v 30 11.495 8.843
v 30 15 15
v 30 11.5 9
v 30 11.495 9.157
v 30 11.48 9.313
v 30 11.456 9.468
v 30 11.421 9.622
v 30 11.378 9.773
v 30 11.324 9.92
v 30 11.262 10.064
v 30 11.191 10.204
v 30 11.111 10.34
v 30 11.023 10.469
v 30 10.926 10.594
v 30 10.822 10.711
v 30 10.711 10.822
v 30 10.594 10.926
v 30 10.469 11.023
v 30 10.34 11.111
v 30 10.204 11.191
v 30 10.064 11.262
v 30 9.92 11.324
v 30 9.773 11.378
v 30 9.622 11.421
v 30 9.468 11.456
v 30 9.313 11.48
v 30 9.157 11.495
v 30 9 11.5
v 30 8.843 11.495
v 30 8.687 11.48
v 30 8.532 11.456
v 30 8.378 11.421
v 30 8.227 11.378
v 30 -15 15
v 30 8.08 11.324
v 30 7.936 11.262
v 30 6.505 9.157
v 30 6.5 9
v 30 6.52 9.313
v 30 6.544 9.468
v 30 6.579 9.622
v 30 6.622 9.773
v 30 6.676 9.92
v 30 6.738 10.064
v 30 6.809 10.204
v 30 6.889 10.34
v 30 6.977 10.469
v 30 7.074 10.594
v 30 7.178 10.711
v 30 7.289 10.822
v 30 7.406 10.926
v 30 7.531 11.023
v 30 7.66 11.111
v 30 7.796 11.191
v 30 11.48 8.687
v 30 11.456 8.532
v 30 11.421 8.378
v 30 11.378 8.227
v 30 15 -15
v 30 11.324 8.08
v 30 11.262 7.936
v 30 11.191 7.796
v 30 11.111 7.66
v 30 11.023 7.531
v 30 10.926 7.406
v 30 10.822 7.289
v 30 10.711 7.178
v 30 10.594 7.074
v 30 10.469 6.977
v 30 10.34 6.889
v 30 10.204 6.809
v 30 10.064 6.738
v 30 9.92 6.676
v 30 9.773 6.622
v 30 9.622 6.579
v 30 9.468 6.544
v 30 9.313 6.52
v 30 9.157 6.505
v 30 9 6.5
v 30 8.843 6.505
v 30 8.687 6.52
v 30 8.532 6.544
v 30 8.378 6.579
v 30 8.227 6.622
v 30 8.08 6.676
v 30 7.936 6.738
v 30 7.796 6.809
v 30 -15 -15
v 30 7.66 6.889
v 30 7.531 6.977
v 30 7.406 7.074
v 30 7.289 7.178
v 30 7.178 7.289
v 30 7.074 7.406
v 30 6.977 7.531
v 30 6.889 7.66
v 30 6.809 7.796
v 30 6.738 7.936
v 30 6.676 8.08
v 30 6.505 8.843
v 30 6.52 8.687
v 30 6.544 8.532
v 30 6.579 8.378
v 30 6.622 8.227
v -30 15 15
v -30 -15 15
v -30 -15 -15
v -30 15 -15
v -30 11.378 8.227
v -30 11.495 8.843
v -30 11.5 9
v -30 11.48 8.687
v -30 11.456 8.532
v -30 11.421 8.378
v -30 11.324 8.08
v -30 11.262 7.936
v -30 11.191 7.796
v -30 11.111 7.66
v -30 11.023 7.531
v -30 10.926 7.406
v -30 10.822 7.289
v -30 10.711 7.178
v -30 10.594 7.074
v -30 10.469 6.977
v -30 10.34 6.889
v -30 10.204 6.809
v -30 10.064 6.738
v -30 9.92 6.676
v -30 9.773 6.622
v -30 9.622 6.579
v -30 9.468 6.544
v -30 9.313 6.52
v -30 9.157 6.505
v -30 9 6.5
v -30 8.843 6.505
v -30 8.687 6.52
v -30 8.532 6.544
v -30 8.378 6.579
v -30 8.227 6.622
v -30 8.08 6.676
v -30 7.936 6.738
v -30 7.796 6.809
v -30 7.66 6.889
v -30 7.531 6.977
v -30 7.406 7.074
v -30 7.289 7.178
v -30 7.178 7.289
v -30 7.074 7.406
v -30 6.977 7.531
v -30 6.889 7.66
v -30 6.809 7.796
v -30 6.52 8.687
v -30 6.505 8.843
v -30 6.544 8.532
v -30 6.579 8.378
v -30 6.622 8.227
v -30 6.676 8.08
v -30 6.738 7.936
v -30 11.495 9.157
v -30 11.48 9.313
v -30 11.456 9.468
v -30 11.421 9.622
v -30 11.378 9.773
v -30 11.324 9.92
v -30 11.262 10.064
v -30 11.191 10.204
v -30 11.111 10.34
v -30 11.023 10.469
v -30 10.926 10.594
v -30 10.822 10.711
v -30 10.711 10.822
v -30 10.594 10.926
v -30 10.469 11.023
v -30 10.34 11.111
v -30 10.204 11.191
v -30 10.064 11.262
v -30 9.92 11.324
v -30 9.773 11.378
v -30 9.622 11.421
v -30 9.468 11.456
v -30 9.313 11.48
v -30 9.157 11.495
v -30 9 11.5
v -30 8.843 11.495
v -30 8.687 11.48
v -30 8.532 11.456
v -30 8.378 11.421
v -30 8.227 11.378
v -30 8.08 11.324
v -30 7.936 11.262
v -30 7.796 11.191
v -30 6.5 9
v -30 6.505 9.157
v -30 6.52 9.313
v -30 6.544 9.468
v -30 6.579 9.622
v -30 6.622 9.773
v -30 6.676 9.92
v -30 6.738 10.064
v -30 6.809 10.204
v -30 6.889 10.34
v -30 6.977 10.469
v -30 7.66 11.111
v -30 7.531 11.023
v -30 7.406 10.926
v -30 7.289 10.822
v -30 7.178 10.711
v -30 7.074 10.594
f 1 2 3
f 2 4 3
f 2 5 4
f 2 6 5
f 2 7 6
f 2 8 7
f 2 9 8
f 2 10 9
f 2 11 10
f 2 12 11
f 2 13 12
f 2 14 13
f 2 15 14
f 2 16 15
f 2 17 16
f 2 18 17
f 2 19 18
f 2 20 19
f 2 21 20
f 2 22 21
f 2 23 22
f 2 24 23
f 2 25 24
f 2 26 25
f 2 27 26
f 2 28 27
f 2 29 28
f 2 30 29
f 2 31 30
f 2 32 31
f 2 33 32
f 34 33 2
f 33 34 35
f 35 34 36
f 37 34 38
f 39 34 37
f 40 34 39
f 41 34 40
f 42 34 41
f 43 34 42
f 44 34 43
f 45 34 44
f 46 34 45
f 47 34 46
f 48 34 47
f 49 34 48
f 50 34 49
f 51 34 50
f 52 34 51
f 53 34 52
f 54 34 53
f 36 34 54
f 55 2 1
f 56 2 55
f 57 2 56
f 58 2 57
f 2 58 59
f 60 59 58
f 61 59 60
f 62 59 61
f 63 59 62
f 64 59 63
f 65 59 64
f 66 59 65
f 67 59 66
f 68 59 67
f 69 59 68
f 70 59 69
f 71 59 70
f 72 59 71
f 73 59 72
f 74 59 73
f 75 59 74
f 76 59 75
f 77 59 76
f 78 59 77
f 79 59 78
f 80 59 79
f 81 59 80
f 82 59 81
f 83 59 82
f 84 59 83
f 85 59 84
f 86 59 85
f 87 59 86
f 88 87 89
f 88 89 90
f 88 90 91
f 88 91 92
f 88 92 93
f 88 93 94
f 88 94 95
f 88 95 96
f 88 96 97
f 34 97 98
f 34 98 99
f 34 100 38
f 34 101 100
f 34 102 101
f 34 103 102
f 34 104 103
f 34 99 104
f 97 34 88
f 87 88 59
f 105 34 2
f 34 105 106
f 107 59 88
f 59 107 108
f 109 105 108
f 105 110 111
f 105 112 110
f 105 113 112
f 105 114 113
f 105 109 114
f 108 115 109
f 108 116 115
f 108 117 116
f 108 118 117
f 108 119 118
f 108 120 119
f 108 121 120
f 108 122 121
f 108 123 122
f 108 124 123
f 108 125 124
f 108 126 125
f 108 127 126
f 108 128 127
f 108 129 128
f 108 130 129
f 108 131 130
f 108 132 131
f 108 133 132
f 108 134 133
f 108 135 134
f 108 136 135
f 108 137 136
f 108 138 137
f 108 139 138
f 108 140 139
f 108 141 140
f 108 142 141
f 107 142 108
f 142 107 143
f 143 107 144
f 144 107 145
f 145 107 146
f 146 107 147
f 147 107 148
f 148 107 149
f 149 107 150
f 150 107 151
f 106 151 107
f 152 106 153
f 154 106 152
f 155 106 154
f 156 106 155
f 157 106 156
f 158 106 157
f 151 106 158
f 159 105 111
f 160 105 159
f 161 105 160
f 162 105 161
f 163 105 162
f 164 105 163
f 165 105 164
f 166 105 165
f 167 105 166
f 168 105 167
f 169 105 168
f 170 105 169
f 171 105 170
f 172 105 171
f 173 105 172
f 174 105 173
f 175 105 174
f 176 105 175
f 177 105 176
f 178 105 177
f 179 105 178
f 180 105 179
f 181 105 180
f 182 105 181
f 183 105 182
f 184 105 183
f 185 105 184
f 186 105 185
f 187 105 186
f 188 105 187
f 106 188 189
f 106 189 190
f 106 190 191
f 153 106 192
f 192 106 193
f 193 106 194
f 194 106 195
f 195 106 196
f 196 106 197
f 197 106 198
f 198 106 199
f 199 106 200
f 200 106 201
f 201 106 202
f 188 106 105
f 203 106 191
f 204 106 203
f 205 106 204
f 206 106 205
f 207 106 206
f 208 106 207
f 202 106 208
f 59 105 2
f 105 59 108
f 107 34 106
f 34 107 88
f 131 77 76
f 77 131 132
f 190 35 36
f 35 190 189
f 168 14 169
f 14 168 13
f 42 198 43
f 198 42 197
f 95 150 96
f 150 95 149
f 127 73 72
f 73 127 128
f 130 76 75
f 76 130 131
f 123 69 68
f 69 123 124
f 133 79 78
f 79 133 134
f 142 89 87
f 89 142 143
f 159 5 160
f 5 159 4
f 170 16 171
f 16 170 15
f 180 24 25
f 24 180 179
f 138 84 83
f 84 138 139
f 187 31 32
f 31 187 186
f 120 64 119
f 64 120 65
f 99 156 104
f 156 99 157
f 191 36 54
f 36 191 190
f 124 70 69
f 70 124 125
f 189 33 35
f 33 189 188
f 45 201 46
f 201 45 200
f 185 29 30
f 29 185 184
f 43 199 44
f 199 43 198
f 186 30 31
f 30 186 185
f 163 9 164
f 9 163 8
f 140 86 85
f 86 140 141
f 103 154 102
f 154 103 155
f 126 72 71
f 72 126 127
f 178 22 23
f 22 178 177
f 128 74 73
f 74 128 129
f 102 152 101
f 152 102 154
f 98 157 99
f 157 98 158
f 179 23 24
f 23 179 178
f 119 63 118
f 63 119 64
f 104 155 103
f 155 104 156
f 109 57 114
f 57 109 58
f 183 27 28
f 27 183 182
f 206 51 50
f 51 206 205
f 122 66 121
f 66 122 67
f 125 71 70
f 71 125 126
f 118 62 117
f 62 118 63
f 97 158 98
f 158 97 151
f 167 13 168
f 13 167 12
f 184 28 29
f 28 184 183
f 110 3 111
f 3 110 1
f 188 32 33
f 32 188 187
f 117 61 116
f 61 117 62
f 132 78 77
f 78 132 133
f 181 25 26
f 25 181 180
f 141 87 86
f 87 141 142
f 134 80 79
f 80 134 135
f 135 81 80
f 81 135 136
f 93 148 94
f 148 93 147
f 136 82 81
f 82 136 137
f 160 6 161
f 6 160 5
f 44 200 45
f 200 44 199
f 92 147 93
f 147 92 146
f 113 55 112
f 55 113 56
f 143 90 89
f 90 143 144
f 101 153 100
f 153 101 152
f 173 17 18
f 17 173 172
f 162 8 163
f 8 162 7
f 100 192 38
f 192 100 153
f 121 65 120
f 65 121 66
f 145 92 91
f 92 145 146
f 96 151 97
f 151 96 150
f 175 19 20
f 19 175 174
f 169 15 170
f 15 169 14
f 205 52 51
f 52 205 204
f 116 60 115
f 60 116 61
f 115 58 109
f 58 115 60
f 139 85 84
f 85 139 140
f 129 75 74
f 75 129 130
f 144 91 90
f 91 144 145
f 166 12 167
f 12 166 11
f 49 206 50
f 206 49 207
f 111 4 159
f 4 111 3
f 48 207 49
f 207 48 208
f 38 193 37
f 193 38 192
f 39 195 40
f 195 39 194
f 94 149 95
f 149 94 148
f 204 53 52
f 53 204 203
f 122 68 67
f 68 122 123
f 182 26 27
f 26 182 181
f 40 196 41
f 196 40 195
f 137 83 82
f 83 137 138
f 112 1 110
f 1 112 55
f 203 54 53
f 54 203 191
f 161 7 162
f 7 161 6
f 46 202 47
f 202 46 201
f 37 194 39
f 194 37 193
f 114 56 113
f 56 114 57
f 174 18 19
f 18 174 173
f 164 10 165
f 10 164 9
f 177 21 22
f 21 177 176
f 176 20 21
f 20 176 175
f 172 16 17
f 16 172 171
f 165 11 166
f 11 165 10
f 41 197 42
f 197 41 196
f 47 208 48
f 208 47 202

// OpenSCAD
//Instructions: 
//   a. Rotate view (press mouse, move one finger) 
//   b. Zoom view (two fingers) 
//   c. Preview (Design menu) 
//   d. Render (Design menu) 
//   e. Save (File menu)
//   f. Export as STL (File menu)

difference() {
	cube([60,30,30], center =true, $fn=100); 	// main object
        // the following is the object that will be substracted
    translate([-30,9,9]) //Change 9 to another value to reposition hole.
	rotate ([0,90,0]) cylinder (h = 80, r=2.5, center = false, $fn=100);
}
